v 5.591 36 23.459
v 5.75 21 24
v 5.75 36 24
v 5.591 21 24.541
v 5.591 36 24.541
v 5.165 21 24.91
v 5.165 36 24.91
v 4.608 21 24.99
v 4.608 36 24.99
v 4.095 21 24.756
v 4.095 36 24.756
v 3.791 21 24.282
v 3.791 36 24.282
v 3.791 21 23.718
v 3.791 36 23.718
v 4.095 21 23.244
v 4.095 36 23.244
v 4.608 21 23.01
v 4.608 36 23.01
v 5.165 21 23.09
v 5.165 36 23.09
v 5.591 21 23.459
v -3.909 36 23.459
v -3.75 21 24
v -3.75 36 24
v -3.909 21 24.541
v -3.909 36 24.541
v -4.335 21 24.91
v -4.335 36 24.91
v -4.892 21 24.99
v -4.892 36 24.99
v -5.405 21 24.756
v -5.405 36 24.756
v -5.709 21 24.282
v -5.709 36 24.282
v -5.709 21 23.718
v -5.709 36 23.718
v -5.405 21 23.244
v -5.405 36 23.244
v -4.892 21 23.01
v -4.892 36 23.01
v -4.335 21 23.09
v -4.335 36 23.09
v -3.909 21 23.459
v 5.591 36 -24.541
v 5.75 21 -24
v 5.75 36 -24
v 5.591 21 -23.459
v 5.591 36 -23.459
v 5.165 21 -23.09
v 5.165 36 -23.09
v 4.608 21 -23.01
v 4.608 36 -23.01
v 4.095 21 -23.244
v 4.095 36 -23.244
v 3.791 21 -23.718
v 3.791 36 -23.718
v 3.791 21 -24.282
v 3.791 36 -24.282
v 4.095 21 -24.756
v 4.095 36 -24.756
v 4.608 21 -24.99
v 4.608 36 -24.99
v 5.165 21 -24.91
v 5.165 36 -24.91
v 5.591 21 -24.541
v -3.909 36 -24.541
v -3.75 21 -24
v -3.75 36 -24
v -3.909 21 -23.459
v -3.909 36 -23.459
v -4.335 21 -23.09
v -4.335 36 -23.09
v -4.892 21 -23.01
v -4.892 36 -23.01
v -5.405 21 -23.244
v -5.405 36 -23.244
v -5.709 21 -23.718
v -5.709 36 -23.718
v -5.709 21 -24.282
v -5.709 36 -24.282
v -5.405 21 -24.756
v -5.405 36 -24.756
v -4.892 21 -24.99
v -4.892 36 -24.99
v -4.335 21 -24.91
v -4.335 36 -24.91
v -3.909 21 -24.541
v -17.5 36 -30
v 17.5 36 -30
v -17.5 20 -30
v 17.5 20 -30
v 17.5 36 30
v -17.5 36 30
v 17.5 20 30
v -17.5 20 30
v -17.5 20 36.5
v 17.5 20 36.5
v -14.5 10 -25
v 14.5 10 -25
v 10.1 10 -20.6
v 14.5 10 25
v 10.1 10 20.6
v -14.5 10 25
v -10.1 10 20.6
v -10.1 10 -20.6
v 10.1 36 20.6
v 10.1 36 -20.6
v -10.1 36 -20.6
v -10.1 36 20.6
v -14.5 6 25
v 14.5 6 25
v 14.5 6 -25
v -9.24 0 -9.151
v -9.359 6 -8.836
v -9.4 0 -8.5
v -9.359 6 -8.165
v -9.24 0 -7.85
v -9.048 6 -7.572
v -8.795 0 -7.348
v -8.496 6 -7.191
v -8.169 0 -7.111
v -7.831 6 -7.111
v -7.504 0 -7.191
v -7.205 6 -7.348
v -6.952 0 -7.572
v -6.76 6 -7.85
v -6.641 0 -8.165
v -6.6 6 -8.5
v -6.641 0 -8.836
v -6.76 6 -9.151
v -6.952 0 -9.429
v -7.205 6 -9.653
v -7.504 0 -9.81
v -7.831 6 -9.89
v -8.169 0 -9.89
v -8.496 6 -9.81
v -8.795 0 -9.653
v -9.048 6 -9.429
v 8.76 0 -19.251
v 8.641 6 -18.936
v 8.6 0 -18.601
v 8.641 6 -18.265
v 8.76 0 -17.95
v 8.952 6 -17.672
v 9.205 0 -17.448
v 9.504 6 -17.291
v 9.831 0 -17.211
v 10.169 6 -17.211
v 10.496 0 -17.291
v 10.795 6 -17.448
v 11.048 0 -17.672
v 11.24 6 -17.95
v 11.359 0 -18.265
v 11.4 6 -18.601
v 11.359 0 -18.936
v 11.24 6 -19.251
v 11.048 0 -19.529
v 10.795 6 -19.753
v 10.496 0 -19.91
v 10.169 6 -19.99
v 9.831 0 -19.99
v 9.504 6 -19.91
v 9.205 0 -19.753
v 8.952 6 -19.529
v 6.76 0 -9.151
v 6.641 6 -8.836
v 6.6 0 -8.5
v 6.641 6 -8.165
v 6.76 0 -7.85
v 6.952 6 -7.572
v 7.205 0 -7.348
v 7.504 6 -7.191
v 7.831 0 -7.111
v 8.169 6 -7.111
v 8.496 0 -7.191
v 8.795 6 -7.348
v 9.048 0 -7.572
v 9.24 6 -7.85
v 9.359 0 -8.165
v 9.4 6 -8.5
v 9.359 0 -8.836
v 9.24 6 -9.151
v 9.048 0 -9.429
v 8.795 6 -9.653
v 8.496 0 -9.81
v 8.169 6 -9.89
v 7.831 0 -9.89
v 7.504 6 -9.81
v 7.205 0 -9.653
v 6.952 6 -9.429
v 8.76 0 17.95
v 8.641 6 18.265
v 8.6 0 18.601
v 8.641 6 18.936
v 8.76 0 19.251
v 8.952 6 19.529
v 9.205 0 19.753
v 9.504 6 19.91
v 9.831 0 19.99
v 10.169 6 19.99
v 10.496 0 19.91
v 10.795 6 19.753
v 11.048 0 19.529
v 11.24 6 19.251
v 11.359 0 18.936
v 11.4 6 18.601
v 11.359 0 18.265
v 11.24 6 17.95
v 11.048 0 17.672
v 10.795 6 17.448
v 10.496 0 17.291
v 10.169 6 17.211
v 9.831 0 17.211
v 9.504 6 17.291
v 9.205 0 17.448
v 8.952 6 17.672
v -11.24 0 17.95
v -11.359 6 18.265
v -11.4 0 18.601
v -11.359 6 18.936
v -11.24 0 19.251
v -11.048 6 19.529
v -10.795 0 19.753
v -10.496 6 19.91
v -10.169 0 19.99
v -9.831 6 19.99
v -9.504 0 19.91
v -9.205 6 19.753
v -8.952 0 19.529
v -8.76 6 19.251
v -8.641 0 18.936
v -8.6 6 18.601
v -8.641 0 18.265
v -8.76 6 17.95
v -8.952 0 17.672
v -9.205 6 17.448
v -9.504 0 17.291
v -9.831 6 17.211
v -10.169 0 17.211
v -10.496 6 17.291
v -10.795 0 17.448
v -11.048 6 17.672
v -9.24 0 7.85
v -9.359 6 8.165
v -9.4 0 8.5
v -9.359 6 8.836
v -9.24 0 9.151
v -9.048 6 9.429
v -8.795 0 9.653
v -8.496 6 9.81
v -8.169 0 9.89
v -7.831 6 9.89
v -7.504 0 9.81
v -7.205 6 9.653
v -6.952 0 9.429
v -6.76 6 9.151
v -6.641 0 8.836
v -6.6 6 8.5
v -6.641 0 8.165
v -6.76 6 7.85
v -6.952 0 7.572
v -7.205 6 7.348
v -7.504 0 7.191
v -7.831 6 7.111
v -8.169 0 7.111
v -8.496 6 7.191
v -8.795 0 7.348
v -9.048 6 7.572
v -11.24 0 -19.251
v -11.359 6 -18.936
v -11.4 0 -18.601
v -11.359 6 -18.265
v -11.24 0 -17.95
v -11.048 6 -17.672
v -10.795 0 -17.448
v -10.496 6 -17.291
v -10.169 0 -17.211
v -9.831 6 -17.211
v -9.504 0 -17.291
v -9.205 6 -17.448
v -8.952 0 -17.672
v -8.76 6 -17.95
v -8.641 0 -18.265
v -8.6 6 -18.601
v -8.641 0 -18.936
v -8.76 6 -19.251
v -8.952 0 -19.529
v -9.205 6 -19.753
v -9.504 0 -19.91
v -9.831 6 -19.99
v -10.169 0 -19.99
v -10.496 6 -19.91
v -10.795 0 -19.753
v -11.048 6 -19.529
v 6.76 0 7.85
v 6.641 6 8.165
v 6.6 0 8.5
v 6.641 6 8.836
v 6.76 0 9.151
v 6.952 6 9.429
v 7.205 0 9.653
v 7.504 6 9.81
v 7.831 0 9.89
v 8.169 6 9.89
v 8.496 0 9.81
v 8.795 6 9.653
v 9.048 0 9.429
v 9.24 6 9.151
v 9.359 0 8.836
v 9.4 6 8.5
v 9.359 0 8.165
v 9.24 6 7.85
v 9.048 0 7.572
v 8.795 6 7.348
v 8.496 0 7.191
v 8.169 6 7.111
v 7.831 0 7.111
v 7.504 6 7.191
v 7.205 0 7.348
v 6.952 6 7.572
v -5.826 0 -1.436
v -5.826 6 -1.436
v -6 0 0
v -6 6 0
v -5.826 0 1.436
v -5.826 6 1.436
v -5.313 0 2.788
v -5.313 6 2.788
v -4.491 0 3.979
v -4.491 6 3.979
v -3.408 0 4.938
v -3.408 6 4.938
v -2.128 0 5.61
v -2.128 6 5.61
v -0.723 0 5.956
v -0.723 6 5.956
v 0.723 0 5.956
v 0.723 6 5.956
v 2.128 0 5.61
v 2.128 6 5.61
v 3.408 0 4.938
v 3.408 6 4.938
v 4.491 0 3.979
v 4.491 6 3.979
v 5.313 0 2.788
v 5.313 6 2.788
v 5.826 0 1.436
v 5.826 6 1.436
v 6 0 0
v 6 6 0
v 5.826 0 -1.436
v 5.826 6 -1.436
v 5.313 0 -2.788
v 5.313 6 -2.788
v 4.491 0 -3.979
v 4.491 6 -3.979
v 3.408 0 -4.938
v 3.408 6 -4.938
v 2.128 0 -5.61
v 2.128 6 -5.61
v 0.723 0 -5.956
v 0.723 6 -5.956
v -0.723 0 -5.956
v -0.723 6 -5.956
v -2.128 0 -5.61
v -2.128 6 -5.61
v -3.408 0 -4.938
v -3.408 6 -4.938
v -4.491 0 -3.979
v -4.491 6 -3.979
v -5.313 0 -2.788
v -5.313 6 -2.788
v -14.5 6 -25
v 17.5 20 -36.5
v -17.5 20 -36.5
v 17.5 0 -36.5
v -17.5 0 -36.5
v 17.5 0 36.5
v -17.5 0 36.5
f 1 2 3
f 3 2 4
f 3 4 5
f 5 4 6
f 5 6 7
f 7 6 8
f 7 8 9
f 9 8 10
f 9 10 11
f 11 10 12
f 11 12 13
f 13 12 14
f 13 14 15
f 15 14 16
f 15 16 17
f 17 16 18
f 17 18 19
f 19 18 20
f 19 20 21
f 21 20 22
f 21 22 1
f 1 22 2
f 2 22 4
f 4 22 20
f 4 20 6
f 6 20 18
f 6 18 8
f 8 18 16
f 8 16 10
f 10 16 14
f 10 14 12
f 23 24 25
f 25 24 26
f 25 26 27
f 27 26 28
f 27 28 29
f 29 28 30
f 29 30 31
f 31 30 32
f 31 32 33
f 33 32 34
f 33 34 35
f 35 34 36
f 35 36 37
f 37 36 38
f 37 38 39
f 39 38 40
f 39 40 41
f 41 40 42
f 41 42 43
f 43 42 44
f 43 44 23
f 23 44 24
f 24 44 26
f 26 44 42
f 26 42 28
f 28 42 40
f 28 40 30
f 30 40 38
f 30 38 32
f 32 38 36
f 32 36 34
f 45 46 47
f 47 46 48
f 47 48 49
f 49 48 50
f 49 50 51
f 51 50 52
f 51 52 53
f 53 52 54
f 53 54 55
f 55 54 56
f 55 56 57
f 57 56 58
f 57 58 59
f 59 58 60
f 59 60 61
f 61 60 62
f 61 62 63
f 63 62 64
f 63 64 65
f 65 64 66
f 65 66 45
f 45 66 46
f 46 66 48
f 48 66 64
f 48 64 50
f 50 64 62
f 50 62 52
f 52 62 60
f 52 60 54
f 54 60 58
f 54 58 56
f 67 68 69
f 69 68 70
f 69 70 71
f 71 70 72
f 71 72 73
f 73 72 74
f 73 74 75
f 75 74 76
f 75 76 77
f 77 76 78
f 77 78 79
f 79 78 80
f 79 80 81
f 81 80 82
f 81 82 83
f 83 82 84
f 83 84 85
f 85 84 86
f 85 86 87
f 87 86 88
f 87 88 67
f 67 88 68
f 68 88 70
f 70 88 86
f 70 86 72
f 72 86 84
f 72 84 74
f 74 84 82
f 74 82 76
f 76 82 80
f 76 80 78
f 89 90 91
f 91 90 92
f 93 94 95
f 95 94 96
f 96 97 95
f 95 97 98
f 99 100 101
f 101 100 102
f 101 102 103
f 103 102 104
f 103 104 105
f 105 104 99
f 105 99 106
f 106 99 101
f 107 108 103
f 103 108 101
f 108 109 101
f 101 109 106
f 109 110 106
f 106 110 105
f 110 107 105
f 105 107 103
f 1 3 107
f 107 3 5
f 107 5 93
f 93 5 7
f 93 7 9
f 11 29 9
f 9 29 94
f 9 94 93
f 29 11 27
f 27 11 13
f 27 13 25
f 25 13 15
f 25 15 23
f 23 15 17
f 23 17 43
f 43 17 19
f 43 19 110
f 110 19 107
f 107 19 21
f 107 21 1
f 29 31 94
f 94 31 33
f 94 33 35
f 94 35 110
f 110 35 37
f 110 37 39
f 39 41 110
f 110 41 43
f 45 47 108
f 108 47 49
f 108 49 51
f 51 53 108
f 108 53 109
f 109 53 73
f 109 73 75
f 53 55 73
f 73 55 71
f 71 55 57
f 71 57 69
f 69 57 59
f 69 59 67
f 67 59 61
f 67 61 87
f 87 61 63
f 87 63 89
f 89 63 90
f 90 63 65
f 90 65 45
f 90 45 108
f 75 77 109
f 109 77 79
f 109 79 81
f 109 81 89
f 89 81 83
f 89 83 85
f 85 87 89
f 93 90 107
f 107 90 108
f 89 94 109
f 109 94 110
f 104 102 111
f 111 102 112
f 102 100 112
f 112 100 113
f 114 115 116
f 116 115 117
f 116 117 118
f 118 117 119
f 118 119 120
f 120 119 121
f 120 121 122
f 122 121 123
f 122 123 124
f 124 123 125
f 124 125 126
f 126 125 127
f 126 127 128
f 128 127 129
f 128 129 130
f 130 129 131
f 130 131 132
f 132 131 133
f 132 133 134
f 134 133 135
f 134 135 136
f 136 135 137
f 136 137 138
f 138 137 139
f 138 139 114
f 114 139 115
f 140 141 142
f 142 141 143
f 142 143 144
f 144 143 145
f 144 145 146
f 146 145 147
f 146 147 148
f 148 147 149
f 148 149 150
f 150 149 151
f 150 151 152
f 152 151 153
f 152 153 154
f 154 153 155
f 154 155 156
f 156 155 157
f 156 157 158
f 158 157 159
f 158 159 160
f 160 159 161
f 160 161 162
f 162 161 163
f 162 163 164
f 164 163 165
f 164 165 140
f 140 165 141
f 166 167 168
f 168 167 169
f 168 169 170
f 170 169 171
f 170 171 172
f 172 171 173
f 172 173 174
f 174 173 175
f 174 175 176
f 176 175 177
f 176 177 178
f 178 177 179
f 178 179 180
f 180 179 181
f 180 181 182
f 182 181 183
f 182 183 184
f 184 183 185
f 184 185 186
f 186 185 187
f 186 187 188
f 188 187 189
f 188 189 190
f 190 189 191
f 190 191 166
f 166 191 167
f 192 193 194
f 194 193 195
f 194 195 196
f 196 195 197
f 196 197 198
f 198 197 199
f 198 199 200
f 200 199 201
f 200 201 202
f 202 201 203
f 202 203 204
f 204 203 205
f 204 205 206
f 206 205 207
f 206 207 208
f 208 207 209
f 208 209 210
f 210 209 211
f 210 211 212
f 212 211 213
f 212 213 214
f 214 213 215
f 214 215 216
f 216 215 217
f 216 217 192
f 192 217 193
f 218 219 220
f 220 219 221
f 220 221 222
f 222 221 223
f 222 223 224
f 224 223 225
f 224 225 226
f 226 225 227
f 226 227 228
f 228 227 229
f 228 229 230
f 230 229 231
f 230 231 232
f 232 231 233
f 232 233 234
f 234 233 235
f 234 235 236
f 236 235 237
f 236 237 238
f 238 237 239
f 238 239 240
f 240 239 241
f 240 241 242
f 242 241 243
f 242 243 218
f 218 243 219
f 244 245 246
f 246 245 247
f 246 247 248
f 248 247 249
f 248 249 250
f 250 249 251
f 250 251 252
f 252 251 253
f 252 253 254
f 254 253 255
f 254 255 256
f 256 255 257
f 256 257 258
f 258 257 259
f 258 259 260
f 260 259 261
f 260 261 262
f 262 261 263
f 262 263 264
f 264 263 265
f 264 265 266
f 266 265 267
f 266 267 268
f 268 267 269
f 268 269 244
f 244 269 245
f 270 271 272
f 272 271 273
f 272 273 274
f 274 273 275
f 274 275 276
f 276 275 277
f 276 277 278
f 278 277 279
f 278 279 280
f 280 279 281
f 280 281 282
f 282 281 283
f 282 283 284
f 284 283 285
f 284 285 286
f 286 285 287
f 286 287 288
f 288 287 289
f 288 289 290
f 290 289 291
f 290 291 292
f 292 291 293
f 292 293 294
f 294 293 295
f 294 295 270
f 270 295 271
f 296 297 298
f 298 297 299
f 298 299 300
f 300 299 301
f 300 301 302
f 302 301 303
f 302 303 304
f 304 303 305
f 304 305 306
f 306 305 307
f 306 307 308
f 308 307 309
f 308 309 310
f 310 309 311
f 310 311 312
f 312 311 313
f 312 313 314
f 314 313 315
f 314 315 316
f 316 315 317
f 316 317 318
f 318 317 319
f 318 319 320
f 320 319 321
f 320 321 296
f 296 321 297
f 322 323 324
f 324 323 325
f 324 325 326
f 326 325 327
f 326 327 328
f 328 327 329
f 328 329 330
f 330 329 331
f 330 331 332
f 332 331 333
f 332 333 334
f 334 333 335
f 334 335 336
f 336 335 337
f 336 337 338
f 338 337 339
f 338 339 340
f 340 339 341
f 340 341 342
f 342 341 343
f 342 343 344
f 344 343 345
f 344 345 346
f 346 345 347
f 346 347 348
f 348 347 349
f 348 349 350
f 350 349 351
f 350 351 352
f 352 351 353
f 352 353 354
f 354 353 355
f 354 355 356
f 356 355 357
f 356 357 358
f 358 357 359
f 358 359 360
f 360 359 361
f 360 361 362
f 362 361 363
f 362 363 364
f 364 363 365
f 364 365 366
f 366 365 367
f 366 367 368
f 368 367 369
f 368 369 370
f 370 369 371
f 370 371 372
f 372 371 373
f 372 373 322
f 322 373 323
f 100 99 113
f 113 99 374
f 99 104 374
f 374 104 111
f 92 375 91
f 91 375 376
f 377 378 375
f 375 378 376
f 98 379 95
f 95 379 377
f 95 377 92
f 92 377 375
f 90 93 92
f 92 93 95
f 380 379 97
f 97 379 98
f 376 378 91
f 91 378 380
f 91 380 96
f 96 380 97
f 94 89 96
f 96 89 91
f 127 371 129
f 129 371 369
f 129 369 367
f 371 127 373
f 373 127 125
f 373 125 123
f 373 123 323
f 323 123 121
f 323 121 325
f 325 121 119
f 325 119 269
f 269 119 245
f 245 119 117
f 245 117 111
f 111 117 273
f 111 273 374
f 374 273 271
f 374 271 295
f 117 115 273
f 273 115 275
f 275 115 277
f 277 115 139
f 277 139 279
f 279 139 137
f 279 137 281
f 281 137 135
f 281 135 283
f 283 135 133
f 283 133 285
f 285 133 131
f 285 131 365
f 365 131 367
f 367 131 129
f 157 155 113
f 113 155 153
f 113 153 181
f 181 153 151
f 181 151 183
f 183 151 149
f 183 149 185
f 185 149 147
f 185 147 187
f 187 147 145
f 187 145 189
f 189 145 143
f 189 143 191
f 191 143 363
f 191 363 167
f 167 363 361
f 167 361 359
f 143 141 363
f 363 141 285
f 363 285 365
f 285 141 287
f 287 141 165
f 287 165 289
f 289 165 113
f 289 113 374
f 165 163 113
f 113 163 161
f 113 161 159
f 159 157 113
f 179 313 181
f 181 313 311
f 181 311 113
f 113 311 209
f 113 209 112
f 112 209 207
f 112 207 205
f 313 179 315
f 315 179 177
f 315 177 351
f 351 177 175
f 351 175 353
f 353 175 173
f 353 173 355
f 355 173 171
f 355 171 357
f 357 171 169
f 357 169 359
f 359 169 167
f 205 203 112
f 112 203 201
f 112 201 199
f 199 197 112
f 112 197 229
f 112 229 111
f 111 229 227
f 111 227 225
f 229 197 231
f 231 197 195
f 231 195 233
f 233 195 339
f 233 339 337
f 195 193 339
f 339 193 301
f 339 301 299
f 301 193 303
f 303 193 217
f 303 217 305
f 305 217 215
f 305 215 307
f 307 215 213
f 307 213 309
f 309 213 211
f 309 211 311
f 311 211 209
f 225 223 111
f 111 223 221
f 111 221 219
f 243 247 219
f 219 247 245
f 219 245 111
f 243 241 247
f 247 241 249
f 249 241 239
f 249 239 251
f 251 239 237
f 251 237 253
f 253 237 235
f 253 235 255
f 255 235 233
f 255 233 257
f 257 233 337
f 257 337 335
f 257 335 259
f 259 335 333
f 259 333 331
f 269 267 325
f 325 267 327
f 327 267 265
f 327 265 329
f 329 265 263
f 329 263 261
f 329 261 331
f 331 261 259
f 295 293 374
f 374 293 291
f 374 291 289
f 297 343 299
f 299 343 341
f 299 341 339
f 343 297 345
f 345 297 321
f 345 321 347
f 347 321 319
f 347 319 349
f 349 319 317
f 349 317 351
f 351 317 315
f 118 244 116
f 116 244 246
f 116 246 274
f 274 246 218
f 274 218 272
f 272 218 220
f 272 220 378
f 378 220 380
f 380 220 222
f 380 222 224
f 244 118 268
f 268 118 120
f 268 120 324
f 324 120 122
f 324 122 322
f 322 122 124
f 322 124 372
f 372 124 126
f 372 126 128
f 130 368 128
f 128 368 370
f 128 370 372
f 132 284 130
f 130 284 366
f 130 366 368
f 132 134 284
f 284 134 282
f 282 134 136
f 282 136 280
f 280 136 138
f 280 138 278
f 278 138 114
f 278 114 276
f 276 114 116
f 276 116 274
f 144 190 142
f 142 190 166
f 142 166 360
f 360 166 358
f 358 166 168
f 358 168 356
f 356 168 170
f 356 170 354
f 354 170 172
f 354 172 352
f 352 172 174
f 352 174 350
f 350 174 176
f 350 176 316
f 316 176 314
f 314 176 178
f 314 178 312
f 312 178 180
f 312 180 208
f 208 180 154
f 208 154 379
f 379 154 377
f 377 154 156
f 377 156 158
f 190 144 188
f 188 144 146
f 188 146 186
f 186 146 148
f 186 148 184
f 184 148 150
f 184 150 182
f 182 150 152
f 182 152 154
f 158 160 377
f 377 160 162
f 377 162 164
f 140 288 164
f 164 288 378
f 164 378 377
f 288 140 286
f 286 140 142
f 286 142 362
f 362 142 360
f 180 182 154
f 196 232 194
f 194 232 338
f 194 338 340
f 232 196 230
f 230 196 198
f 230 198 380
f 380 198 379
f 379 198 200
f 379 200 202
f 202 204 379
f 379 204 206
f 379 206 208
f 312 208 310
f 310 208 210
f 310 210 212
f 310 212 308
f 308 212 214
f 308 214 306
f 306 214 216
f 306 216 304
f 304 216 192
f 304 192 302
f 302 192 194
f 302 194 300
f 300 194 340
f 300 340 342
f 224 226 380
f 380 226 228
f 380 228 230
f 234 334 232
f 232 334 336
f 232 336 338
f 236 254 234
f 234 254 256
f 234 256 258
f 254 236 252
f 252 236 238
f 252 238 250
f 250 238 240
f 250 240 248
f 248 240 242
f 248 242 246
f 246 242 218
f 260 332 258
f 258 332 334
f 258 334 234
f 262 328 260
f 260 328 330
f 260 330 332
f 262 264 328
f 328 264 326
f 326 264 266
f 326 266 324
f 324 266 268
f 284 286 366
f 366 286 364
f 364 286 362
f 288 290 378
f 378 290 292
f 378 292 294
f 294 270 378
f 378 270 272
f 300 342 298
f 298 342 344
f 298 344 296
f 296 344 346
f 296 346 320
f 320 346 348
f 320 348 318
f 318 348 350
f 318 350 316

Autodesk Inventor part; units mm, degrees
ref_plane "YZ Plane" through (0, 0, 0) normal (1, 0, 0) x (0, 1, 0)
ref_plane "XZ Plane" through (0, 0, 0) normal (0, 1, 0) x (-1, 0, 0)
ref_plane "XY Plane" through (0, 0, 0) normal (0, 0, 1) x (1, 0, 0)
sketch "Sketch1" plane through (0, 0, 0) normal (0, 1, 0) x (-1, 0, 0)
  line L0 (-17.5, -36.5) -> (17.5, -36.5)
  line L1 (17.5, -36.5) -> (17.5, 36.5)
  line L2 (17.5, 36.5) -> (-17.5, 36.5)
  line L3 (-17.5, 36.5) -> (-17.5, -36.5)
  line L4 (-17.5, -36.5) -> (17.5, 36.5) construction
  line L5 (17.5, -36.5) -> (-17.5, 36.5) construction
  point P0 (0, 0)
  dimension "d0" = 35
  dimension "d1" = 73
extrude "Extrusion1" add sketch "Sketch1" along normal blind 6
sketch "Sketch2" plane through (0, 6, 0) normal (0, 1, 0) x (1, 0, 0)
  line L0 (14.5, 25) -> (-14.5, 25)
  line L1 (-14.5, 25) -> (-14.5, -25)
  line L2 (-14.5, -25) -> (14.5, -25)
  line L3 (14.5, -25) -> (14.5, 25)
  line L4 (14.5, 25) -> (-14.5, -25) construction
  line L5 (-14.5, 25) -> (14.5, -25) construction
  line L6 (-17.5, 36.5) -> (-17.5, -36.5) projected
  line L7 (17.5, -36.5) -> (17.5, 36.5) projected
  line L8 (-17.5, -36.5) -> (17.5, -36.5)
  line L9 (17.5, -36.5) -> (17.5, -30.5)
  line L10 (17.5, -30.5) -> (-17.5, -30.5)
  line L11 (-17.5, -30.5) -> (-17.5, -36.5)
  line L12 (-17.5, 36.5) -> (17.5, 36.5)
  line L13 (17.5, 36.5) -> (17.5, 30.5)
  line L14 (17.5, 30.5) -> (-17.5, 30.5)
  line L15 (-17.5, 30.5) -> (-17.5, 36.5)
  point P0 (0, 0)
  dimension "d4" = 29
  dimension "d5" = 50
  dimension "d15" = 6
  dimension "d16" = 6
extrude "Extrusion2" add sketch "Sketch2" along normal blind 14
sketch "Sketch4" plane through (0, 6, 0) normal (0, 1, 0) x (1, 0, 0)
  circle A0 centre (0, 0) radius 6
  line L0 (15, 24.0075) -> (-15, 24.0075)
  line L1 (-15, 24.0075) -> (-15, -24.0075)
  line L2 (-15, -24.0075) -> (15, -24.0075)
  line L3 (15, -24.0075) -> (15, 24.0075)
  line L4 (15, 24.0075) -> (-15, -24.0075) construction
  line L5 (-15, 24.0075) -> (15, -24.0075) construction
  circle A1 centre (-10, -18.6005) radius 1.4
  line L6 (-14.5, -25) -> (-14.5, 25) projected
  circle A2 centre (-8, -8.5005) radius 1.4
  line L7 (12.9011, 0) -> (-11.0407, 0) construction
  line L8 (0, -11.5905) -> (0, 16.5955) construction
  circle A3 centre (-10, 18.6005) radius 1.4
  circle A4 centre (-8, 8.5005) radius 1.4
  circle A5 centre (10, -18.6005) radius 1.4
  circle A6 centre (8, -8.5005) radius 1.4
  circle A7 centre (10, 18.6005) radius 1.4
  circle A8 centre (8, 8.5005) radius 1.4
  dimension "d19" = 12
  dimension "d20" = 30
  dimension "d21" = 48.015
  dimension "d22" = 2.8
  dimension "d23" = 4.5
  dimension "d24" = 4.007
  dimension "d25" = 2.8
  dimension "d26" = 6.5
  dimension "d27" = 15.507
extrude "Extrusion4" cut sketch "Sketch4" against normal through all contours A0 | A1 | A2 | A3 | A4 | A5 | A6 | A7 | A8
sketch "Sketch9" plane through (0, 20, 0) normal (0, 1, 0) x (1, 0, 0)
  line L0 (-14.5, -25) -> (-14.5, 25) projected
  line L1 (14.5, -25) -> (-14.5, -25)
  line L2 (-14.5, -25) -> (-14.5, 25)
  line L3 (-14.5, 25) -> (14.5, 25)
  line L4 (14.5, 25) -> (14.5, -25)
  line L5 (14.5, -25) -> (-14.5, 25) construction
  line L6 (-14.5, -25) -> (14.5, 25) construction
  line L7 (10.1, -20.6) -> (-10.1, -20.6)
  line L8 (-10.1, -20.6) -> (-10.1, 20.6)
  line L9 (-10.1, 20.6) -> (10.1, 20.6)
  line L10 (10.1, 20.6) -> (10.1, -20.6)
  line L11 (10.1, -20.6) -> (-10.1, 20.6) construction
  line L12 (-10.1, -20.6) -> (10.1, 20.6) construction
  point P0 (0, 0)
  dimension "d45" = 20.2
  dimension "d46" = 41.2
extrude "Extrusion8" add sketch "Sketch9" along normal blind 16 and the other way blind 10
sketch "Sketch10" plane through (0, 20, 0) normal (0, 1, 0) x (1, 0, 0)
  line L0 (-14.5, 25) -> (14.5, 25) projected
  line L1 (14.5, -25) -> (-14.5, -25)
  line L2 (-14.5, -25) -> (-14.5, 25)
  line L3 (-14.5, 25) -> (14.5, 25)
  line L4 (14.5, 25) -> (14.5, -25)
  line L5 (14.5, -25) -> (-14.5, 25) construction
  line L6 (-14.5, -25) -> (14.5, 25) construction
  line L7 (17.5, -30) -> (-17.5, -30)
  line L8 (-17.5, -30) -> (-17.5, 30)
  line L9 (-17.5, 30) -> (17.5, 30)
  line L10 (17.5, 30) -> (17.5, -30)
  line L11 (17.5, -30) -> (-17.5, 30) construction
  line L12 (-17.5, -30) -> (17.5, 30) construction
  point P0 (0, 0)
  point P1 (14.5, 25)
  dimension "d51" = 35
  dimension "d52" = 60
extrude "Extrusion9" add sketch "Sketch10" along normal up to surface (16 mm away)
sketch "Sketch12" plane through (0, 36, 0) normal (0, 1, 0) x (1, 0, 0)
  line L0 (4.75, -24) -> (-4.75, -24)
  line L1 (-4.75, -24) -> (-4.75, 24)
  line L2 (-4.75, 24) -> (4.75, 24)
  line L3 (4.75, 24) -> (4.75, -24)
  line L4 (4.75, -24) -> (-4.75, 24) construction
  line L5 (-4.75, -24) -> (4.75, 24) construction
  point P0 (0, 0)
  dimension "d55" = 9.5
  dimension "d56" = 48
hole "Hole1" at (-4.75, 36, -24) at (4.75, 36, -24) at (-4.75, 36, 24) at (4.75, 36, 24) direction (0, -1, 0) diameter 2 depth 15
equation "\"d1\" = Esla_Bas_Largo"
equation "\"Esla_Bas_Largo\" = 73"
properties part number "Base_servo_efector" material "Acetal Resin, White"
